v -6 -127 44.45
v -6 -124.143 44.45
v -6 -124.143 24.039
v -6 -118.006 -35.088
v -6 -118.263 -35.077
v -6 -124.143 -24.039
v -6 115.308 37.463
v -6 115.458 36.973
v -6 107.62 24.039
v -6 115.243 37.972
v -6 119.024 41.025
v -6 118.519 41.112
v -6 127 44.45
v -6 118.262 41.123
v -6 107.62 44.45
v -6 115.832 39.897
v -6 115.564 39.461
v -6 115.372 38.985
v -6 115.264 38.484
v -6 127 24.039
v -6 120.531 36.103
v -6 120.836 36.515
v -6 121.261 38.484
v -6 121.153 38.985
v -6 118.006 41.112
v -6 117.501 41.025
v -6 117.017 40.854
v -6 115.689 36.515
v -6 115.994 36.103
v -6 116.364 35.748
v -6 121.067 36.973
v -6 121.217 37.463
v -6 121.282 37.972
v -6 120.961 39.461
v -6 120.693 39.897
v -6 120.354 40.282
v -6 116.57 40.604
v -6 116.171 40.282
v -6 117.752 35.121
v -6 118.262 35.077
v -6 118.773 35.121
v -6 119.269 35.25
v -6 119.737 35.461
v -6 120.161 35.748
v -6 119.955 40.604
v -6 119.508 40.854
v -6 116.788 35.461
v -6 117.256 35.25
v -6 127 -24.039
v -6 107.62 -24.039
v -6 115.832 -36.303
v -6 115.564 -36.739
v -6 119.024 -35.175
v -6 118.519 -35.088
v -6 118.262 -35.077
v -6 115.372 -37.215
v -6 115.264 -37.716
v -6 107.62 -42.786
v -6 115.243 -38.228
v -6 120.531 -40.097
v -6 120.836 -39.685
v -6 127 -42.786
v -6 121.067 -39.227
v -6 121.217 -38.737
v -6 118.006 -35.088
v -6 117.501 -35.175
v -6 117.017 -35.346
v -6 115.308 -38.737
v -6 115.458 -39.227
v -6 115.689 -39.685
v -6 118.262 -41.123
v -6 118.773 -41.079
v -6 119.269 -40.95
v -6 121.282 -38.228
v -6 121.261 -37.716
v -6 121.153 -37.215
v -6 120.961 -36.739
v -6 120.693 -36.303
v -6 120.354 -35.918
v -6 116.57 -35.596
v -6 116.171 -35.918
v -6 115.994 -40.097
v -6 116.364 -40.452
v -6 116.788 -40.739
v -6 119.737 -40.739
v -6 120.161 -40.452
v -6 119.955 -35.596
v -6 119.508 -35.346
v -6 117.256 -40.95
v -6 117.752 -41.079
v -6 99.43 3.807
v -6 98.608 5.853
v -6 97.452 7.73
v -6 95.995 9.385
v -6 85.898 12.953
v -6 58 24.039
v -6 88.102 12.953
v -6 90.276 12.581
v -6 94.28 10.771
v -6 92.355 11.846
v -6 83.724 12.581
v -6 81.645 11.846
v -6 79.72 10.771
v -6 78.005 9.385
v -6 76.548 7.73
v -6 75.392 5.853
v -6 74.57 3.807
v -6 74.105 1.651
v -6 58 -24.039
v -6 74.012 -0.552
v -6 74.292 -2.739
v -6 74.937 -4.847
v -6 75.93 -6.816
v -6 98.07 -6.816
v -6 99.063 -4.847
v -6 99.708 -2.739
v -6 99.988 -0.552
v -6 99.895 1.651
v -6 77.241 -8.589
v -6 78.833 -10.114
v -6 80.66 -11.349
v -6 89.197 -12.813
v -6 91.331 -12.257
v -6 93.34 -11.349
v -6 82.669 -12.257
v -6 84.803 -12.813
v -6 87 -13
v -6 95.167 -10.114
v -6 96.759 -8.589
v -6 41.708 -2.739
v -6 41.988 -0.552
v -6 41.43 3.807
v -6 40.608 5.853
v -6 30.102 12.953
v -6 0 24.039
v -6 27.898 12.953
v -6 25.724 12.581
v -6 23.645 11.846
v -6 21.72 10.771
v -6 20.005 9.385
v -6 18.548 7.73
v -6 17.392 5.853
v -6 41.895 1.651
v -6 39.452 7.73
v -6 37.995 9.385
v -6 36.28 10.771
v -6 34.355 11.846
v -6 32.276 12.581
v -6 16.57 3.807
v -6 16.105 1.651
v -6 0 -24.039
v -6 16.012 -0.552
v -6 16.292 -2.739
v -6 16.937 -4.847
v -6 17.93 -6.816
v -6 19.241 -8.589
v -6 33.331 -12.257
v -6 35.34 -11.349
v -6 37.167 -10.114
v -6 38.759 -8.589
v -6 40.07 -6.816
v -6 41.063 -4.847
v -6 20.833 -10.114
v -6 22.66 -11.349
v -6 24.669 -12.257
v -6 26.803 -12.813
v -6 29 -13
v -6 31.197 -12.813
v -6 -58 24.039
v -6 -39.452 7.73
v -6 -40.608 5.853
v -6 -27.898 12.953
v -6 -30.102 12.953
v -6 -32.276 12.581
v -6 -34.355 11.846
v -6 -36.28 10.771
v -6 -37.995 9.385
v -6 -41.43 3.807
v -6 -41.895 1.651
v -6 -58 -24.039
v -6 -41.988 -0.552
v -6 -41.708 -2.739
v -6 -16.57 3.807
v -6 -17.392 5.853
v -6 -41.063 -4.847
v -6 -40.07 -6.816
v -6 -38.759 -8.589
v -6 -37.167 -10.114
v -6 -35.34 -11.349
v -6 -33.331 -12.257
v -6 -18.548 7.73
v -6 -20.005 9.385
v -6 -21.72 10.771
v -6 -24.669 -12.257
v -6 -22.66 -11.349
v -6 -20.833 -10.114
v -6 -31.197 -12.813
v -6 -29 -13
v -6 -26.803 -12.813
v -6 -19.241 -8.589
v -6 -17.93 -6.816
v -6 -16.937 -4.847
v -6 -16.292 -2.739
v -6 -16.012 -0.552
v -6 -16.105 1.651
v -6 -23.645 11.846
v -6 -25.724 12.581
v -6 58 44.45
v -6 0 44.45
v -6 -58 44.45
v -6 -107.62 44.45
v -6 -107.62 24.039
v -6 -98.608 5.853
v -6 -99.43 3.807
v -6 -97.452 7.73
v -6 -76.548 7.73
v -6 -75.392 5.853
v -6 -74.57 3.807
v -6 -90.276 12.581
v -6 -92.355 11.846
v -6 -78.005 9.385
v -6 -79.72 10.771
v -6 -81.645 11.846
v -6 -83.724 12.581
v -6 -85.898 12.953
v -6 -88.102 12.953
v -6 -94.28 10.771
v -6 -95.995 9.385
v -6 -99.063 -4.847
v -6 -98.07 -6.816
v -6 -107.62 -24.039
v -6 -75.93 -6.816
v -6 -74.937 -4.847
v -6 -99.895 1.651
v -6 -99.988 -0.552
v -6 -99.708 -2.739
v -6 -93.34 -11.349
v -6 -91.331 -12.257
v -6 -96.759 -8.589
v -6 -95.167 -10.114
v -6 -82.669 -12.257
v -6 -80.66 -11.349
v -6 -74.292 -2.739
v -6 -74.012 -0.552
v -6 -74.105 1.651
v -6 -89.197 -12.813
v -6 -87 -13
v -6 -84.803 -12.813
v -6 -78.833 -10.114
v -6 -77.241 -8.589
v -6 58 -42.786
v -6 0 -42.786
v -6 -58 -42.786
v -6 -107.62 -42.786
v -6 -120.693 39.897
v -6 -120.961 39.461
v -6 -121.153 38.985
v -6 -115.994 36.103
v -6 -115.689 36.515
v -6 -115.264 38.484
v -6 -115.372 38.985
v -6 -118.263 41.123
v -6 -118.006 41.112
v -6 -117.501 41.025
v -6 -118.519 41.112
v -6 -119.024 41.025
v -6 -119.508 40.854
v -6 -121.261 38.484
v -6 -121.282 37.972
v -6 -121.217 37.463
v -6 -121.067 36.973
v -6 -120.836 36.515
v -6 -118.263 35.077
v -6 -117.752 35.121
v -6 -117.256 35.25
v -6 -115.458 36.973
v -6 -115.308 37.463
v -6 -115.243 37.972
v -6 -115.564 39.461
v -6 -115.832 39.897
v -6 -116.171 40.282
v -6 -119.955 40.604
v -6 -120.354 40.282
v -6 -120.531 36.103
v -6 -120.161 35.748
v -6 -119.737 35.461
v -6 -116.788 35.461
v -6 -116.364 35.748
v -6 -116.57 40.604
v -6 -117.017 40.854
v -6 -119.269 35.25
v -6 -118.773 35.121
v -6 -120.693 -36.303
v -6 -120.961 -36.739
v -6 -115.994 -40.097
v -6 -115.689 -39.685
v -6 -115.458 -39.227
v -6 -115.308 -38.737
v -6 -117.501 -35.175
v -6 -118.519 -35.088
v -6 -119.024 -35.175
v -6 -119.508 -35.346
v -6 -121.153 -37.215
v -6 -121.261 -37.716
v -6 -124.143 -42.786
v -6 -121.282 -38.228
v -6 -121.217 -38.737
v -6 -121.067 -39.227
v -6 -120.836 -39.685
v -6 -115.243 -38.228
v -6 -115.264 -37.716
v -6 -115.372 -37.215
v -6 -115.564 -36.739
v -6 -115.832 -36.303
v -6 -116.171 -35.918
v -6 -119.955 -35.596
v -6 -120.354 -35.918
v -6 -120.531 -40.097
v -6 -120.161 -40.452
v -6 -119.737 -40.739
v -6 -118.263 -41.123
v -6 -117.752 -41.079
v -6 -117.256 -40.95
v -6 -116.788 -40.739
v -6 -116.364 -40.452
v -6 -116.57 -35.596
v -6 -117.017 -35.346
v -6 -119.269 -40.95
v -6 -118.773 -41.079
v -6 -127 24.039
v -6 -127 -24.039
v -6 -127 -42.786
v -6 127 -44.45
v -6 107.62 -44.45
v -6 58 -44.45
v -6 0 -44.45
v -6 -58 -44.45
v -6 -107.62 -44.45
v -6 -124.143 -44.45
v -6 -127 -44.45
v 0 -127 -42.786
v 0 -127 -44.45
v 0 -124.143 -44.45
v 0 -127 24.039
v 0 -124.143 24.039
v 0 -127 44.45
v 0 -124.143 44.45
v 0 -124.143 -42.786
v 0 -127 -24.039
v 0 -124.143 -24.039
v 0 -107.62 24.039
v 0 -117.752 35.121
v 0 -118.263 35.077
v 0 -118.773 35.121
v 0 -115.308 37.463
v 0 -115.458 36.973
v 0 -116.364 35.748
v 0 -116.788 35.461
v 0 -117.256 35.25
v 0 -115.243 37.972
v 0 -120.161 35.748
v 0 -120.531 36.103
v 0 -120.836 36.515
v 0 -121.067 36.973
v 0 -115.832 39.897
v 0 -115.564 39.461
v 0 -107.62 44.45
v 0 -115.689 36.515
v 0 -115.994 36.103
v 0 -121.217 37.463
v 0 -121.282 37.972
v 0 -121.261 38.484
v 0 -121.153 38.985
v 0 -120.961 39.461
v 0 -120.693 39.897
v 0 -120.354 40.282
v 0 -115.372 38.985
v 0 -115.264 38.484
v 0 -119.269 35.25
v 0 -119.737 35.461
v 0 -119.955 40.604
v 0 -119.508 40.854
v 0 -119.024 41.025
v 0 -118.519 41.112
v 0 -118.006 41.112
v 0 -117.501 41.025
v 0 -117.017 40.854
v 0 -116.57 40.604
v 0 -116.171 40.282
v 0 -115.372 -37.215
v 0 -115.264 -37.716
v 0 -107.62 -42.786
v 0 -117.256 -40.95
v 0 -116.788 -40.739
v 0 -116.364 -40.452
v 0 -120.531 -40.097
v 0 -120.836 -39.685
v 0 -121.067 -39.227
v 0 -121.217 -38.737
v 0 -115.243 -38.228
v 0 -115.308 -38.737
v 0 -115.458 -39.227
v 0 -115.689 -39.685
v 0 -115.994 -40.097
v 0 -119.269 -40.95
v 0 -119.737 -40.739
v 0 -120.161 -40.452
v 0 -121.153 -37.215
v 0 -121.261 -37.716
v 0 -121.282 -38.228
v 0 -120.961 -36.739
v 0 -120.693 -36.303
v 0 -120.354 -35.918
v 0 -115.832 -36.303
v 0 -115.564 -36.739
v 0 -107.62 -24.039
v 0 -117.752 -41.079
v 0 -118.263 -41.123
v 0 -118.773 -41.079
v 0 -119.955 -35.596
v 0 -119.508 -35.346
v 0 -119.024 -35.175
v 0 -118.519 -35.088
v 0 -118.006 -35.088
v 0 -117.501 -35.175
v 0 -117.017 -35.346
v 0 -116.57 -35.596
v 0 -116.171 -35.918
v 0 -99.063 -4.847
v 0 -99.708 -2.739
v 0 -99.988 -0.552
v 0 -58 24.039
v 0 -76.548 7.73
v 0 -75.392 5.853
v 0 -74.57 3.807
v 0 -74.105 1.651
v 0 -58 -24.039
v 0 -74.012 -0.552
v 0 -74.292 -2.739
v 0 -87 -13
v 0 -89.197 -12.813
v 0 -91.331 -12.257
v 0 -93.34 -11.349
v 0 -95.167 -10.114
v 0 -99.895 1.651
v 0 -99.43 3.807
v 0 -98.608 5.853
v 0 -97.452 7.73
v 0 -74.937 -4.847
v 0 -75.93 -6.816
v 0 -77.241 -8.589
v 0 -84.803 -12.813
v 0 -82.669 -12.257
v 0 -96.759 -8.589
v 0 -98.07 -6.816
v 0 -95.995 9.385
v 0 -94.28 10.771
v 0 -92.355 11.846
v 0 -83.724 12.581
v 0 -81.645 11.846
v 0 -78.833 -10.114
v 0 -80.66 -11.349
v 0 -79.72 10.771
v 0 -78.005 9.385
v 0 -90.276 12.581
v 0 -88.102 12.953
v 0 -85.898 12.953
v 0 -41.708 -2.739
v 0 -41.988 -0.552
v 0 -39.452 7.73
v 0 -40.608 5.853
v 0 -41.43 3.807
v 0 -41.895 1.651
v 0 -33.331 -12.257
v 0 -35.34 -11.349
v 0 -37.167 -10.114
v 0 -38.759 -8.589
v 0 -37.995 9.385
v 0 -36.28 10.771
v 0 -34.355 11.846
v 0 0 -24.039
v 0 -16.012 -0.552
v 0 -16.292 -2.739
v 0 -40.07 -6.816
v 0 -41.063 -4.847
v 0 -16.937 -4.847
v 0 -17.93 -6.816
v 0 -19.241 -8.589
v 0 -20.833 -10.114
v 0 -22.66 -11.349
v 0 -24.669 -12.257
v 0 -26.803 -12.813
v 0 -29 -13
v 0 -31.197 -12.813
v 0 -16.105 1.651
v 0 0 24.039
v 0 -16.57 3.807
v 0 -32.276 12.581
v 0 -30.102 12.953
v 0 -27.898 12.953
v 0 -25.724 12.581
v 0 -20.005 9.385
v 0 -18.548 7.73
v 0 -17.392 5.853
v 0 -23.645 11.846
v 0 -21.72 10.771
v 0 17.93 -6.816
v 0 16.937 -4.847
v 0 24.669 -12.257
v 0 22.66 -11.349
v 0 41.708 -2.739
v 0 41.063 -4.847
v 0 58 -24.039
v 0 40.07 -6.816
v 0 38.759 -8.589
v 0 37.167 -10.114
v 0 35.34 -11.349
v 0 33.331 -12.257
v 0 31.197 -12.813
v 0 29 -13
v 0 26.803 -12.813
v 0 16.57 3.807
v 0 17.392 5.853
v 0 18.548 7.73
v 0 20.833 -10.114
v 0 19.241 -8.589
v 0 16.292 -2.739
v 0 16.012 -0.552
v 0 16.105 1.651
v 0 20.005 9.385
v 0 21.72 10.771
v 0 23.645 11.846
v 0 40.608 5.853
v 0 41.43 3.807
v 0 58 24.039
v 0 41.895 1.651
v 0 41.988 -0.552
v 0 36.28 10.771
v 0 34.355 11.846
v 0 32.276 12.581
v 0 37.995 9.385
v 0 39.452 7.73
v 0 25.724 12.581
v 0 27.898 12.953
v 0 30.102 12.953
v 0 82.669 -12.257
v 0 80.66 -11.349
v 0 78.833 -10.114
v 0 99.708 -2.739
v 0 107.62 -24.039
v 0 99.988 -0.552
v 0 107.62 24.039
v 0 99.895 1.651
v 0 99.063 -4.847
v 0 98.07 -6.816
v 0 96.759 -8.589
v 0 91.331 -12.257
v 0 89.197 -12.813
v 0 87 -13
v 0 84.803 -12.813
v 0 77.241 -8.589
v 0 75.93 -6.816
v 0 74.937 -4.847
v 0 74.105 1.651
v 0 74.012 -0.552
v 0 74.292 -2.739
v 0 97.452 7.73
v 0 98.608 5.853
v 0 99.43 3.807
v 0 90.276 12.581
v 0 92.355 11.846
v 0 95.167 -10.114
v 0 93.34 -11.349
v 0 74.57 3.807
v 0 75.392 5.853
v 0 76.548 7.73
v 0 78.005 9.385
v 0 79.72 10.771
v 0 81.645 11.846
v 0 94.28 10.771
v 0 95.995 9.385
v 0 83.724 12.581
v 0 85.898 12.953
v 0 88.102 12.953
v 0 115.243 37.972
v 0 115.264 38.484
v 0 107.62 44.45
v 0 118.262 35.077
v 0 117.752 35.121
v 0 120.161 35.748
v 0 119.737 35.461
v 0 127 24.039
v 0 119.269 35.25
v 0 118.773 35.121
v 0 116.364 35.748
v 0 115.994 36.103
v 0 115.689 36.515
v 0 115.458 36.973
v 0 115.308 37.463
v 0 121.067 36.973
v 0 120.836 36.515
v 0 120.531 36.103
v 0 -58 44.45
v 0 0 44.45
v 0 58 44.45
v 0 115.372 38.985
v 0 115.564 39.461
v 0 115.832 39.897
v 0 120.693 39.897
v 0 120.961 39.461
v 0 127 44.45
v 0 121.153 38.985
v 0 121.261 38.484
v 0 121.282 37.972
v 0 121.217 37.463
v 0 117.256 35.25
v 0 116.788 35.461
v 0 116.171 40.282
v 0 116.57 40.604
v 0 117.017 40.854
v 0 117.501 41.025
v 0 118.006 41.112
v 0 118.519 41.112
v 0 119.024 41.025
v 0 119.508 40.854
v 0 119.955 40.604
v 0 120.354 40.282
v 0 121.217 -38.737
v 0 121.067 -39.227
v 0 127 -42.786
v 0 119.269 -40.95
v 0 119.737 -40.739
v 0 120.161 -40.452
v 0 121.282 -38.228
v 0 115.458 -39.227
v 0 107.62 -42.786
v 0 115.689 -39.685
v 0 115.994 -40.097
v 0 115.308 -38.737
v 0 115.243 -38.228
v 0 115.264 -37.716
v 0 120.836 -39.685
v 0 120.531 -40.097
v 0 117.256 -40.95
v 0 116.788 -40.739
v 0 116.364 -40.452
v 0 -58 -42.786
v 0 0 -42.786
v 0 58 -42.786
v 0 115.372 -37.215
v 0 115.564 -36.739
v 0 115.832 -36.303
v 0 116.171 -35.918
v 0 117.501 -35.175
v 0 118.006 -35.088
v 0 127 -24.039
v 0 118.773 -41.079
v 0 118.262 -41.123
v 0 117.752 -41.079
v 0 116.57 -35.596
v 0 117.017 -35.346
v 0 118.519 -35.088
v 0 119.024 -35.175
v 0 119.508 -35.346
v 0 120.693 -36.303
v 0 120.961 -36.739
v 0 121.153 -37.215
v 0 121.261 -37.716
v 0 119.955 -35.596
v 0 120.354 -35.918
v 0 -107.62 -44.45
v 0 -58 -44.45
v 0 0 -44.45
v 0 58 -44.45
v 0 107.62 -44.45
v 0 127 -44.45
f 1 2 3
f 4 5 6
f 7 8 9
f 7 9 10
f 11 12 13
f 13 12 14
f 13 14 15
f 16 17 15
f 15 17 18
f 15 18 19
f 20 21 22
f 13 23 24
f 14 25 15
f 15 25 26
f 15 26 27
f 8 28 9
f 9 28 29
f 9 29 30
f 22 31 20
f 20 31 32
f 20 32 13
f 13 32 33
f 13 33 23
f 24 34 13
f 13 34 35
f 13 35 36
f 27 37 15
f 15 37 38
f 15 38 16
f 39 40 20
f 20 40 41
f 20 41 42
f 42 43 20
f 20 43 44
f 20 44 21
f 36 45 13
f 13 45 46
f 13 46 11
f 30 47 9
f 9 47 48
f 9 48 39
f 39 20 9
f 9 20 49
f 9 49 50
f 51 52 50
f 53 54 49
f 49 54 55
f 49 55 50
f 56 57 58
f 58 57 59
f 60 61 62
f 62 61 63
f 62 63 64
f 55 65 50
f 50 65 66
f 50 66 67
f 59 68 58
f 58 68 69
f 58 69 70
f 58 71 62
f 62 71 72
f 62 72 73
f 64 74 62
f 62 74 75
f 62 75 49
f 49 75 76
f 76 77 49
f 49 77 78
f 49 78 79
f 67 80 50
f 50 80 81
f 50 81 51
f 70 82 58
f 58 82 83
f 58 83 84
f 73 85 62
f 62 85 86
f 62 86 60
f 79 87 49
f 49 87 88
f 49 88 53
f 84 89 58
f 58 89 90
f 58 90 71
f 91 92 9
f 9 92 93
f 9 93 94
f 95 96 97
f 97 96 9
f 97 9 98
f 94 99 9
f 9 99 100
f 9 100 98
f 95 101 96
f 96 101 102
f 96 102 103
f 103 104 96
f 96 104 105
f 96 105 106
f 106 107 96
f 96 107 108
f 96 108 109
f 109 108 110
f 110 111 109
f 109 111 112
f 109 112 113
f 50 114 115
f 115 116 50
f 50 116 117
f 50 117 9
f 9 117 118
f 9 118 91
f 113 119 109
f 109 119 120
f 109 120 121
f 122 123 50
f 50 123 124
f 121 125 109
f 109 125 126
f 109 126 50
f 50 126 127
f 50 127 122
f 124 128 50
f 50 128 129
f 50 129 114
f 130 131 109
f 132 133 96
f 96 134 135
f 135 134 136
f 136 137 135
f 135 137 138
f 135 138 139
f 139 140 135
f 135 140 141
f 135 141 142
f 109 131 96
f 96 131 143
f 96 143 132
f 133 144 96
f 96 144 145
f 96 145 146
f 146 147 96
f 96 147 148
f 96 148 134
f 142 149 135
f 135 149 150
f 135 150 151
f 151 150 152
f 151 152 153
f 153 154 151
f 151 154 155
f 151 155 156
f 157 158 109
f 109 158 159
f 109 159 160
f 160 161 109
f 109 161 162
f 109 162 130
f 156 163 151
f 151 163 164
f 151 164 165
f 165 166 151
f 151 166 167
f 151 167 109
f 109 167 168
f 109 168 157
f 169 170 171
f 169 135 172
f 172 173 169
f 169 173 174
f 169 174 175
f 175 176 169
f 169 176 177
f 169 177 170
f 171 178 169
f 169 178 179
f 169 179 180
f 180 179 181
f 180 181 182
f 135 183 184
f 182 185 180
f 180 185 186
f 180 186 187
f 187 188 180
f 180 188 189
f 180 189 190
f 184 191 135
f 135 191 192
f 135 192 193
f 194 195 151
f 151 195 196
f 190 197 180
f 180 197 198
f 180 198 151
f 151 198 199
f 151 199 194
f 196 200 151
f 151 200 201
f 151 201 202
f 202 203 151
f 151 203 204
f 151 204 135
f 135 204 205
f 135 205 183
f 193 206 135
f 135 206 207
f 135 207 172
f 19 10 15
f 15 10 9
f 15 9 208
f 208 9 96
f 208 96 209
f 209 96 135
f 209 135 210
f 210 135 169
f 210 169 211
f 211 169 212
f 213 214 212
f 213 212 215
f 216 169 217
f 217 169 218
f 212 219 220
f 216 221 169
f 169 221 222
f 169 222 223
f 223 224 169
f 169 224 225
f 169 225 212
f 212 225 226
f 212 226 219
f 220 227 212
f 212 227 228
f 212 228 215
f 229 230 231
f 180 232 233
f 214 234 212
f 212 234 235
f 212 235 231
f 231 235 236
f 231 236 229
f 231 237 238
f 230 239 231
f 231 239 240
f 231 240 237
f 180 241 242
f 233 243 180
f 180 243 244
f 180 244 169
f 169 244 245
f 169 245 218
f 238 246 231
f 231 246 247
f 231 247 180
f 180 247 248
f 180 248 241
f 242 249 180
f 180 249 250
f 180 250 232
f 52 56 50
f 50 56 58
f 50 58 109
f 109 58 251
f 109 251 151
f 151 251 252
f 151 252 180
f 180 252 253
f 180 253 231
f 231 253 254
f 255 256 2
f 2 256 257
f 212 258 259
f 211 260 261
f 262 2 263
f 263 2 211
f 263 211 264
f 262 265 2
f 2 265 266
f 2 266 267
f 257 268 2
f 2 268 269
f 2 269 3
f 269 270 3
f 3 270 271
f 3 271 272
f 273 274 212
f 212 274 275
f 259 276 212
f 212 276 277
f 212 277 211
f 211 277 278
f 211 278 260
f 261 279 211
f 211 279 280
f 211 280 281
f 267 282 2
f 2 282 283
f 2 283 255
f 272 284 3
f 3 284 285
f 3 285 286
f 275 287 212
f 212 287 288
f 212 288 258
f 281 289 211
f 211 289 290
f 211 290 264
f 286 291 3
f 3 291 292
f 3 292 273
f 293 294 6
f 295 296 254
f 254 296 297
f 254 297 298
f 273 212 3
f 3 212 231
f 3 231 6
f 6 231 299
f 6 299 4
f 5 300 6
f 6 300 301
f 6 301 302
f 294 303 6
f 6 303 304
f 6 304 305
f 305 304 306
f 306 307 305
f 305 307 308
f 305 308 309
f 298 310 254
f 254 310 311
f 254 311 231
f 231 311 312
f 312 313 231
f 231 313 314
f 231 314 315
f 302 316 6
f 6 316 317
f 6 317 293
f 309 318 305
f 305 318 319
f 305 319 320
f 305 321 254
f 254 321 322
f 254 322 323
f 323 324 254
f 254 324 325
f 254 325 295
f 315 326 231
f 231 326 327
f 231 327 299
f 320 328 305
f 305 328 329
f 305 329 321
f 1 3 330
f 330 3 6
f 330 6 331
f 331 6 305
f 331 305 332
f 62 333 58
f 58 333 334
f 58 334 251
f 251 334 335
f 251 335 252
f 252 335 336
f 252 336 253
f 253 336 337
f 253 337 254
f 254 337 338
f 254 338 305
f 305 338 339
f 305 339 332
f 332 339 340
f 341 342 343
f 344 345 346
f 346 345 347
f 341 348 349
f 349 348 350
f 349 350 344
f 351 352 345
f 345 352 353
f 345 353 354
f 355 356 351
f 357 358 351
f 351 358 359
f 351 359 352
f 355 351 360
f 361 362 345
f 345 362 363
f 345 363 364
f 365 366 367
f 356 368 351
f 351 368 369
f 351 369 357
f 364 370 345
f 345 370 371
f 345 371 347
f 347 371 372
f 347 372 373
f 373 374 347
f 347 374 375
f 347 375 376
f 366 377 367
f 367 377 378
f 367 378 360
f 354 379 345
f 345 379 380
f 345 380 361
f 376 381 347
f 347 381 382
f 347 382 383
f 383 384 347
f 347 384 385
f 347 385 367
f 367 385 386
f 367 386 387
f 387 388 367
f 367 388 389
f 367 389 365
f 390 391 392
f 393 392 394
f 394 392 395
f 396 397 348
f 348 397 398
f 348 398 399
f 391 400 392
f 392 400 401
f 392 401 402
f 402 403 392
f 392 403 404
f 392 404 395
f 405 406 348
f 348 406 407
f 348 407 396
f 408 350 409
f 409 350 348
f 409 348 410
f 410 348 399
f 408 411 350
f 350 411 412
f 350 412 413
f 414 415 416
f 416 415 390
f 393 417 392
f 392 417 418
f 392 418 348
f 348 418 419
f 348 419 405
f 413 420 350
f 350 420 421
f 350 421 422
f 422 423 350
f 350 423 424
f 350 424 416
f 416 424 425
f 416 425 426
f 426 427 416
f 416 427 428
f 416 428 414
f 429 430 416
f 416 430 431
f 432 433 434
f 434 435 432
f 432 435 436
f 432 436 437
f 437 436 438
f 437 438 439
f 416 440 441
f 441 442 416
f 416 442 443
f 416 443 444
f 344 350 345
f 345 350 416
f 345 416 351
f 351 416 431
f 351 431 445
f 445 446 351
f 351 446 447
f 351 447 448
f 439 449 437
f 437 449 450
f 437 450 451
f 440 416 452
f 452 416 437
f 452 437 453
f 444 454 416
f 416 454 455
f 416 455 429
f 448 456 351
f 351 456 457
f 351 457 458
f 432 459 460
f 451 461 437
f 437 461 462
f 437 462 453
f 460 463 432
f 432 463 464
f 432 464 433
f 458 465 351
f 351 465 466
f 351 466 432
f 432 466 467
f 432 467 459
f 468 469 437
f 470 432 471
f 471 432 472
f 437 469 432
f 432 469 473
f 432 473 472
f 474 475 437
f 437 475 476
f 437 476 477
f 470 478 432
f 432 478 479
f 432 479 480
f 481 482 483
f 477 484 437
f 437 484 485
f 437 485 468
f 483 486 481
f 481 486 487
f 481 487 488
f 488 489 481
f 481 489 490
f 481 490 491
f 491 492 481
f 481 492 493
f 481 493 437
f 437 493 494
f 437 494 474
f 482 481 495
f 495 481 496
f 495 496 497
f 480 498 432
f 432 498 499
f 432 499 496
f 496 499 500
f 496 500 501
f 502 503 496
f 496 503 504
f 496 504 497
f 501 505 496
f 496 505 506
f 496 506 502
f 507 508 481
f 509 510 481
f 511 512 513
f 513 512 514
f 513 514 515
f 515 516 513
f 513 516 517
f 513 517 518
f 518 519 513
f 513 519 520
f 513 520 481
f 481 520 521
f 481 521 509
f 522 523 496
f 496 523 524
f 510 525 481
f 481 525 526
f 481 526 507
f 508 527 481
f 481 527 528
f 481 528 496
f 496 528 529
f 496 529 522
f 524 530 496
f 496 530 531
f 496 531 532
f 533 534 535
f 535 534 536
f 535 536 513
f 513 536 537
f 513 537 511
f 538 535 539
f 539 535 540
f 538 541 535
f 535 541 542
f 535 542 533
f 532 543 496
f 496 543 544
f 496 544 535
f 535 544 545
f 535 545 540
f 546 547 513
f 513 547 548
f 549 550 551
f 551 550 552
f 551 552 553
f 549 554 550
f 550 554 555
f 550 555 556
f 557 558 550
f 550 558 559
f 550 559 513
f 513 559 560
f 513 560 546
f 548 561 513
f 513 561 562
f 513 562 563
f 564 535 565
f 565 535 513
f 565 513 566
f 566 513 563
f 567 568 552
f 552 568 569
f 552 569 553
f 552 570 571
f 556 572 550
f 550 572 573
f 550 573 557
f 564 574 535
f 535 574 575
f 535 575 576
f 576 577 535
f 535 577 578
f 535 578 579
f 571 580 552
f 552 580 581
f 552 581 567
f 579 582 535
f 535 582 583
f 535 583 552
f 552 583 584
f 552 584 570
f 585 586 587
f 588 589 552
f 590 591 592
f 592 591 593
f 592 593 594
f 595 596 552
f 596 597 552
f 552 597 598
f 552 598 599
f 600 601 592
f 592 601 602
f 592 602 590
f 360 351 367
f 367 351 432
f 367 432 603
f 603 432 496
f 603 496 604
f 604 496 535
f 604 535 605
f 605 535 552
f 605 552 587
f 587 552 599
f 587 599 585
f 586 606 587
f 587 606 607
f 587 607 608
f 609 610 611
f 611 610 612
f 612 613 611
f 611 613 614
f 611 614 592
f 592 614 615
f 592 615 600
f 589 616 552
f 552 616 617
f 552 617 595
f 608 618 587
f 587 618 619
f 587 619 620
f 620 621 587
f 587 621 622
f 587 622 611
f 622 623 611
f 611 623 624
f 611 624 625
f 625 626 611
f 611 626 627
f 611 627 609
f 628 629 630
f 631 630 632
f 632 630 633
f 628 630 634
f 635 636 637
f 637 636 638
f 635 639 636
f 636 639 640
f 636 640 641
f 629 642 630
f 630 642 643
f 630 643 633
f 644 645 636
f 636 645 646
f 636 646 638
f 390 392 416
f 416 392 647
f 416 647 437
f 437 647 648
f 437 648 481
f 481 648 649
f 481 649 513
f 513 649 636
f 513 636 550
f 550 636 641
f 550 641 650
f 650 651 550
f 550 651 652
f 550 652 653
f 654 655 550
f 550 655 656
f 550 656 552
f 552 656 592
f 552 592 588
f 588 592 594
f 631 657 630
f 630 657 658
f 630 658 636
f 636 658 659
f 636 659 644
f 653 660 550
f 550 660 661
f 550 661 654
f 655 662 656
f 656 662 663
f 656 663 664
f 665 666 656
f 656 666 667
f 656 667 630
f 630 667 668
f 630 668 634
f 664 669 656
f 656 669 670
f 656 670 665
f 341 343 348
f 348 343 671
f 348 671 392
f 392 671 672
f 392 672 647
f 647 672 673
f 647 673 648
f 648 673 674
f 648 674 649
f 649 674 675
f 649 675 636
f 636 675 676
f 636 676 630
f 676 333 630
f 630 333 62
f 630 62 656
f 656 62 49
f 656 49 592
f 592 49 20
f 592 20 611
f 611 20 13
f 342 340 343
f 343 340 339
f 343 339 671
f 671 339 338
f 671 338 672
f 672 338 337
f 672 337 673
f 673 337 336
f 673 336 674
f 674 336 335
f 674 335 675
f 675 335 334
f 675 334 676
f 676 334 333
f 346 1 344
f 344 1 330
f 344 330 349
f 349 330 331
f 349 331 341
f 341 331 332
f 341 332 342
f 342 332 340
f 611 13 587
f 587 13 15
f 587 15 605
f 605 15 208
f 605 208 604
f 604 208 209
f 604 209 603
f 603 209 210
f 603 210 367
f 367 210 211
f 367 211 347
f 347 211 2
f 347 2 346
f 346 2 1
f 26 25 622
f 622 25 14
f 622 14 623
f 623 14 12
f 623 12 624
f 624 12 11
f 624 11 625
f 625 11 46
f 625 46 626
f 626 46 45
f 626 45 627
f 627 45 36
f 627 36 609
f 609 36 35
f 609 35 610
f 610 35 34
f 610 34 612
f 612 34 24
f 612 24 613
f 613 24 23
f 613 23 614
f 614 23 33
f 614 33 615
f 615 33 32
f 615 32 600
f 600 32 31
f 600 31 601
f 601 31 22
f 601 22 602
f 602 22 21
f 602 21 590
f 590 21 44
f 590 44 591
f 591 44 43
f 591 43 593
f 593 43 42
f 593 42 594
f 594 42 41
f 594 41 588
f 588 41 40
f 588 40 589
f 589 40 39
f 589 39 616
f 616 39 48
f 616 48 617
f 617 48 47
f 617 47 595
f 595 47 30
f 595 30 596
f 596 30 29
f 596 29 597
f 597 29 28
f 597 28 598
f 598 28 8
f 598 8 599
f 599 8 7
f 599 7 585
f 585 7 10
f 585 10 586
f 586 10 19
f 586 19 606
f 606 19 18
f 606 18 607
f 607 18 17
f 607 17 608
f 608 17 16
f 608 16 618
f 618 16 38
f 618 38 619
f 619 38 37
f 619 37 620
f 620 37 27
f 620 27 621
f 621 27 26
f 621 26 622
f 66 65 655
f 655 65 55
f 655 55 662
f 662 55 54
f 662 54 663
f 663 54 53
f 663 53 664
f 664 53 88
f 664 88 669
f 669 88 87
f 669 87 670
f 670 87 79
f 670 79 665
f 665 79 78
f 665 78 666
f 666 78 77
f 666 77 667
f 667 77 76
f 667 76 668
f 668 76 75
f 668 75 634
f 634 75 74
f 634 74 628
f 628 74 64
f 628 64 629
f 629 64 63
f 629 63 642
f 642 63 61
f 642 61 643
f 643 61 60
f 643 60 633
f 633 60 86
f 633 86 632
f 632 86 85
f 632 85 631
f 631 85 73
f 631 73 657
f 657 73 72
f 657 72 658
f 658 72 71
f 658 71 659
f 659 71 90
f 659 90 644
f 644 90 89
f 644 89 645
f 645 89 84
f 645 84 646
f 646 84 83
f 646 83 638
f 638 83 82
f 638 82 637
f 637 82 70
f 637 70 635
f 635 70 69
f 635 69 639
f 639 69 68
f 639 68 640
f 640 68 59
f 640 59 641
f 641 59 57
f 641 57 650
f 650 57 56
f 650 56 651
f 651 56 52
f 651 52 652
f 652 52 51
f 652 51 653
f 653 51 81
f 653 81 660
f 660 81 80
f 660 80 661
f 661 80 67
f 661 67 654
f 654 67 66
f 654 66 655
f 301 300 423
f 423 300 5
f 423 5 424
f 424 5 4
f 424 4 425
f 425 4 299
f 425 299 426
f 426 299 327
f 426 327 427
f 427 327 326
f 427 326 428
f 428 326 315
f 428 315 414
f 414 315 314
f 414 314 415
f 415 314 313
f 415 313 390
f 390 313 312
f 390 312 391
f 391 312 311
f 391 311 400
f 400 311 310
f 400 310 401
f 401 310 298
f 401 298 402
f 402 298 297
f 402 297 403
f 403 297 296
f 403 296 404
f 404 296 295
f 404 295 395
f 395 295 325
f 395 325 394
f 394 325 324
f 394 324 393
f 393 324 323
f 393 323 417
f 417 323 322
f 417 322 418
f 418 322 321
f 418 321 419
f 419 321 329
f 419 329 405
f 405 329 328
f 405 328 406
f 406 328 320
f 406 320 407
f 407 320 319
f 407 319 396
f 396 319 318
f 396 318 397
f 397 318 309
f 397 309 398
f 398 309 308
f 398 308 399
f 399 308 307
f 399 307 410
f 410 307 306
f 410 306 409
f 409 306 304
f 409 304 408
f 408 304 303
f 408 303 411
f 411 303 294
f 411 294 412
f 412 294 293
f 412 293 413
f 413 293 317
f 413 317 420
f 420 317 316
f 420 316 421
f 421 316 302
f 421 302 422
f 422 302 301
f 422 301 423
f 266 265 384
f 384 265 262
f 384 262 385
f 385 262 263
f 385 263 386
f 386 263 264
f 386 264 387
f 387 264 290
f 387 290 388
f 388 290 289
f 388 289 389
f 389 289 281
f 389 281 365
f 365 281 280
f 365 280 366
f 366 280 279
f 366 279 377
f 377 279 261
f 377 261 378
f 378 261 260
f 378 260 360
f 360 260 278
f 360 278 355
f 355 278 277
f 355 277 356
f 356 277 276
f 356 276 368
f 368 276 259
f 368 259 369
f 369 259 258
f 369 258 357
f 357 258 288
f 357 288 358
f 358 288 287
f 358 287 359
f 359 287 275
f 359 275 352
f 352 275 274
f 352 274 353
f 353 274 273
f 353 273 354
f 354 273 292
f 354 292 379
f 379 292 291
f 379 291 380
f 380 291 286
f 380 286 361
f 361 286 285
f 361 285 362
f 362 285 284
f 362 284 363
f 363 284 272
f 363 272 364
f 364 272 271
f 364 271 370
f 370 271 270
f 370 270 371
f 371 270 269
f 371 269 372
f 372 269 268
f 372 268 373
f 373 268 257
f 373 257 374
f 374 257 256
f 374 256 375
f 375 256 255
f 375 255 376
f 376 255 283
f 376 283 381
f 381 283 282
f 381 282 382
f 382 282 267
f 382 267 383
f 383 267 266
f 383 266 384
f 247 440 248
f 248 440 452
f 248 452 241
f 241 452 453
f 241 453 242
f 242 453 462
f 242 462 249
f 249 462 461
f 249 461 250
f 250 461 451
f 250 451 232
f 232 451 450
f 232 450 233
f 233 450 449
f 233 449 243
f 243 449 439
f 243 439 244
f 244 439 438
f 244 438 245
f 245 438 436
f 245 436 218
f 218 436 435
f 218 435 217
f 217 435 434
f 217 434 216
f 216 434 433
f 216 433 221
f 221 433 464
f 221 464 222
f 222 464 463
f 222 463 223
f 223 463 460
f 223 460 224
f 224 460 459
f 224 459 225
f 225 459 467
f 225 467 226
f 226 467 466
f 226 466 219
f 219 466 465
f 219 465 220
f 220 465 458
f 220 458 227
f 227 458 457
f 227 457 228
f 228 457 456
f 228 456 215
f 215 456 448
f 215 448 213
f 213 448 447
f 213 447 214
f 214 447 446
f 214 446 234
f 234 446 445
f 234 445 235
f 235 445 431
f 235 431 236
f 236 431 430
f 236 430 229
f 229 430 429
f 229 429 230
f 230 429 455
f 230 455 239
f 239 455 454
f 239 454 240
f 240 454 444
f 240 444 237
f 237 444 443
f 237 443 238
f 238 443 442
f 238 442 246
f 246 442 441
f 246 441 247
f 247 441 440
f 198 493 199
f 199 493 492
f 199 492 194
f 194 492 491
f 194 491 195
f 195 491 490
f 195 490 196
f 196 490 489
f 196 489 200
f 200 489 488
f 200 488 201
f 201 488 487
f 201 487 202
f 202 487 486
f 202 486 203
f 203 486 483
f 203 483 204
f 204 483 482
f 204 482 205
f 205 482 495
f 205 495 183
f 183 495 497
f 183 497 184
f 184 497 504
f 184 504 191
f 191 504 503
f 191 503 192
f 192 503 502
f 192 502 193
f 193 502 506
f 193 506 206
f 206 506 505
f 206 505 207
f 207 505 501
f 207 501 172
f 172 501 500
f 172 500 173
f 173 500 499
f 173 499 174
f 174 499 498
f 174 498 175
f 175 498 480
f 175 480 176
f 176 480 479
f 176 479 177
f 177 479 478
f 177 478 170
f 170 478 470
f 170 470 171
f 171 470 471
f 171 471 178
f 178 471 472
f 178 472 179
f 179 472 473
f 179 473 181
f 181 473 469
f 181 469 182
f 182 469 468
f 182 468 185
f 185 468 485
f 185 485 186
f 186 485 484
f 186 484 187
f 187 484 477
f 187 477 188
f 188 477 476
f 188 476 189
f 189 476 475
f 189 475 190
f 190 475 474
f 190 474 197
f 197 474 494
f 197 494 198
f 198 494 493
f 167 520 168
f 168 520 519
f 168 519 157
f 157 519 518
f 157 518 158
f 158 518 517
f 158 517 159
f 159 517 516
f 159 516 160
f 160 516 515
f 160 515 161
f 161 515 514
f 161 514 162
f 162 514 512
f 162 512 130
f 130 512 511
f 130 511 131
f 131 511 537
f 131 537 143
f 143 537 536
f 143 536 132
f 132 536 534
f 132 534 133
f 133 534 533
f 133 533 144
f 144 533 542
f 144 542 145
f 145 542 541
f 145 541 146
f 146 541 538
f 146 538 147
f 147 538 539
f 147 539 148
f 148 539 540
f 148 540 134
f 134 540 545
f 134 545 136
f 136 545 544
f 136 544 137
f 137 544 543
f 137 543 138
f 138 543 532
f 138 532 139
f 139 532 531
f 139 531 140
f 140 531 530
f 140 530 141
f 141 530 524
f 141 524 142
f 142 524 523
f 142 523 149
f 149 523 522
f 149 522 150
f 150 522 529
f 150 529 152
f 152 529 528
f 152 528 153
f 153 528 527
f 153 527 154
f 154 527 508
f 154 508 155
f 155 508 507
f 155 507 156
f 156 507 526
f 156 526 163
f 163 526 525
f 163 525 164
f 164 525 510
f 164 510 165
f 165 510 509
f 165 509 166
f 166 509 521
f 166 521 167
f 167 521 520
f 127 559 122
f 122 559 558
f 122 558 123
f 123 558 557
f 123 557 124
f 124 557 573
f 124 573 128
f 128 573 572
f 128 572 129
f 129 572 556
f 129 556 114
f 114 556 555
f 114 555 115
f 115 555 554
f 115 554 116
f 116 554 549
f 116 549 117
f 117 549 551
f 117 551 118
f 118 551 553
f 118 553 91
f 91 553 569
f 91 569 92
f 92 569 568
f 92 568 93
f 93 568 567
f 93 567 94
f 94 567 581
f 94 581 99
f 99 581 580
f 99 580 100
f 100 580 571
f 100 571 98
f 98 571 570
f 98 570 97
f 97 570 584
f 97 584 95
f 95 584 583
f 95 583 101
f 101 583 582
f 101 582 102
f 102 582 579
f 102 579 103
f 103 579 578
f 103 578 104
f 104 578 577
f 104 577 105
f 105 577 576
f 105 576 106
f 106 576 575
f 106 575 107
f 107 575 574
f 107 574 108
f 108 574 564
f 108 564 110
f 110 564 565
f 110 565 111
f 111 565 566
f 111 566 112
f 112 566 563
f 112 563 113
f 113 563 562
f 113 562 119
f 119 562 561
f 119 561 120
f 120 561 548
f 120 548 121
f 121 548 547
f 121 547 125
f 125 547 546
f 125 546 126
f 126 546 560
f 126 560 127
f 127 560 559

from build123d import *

# Parameters (mm, degrees)
SKETCH1_W              = 254
SKETCH1_H              = 88.9
BOSS_EXTRUDE1_DEPTH    = 6
F_10_CLEARANCE_HOLE1_D = 6.0452
M22_CLEARANCE_HOLE1_D  = 26


with BuildPart() as part:
    # Sketch1 → Boss-Extrude1 (new body)
    with BuildSketch(Plane.YZ):
        Rectangle(SKETCH1_W, SKETCH1_H)
    extrude(amount=-BOSS_EXTRUDE1_DEPTH)

    # #10 Clearance Hole1 (through all)
    with Locations(Plane.YZ):
        with Locations((118.2625, 38.1), (-118.2625, 38.1), (-118.2625, -38.1), (118.2625, -38.1)):
            Hole(F_10_CLEARANCE_HOLE1_D / 2)

    # M22 Clearance Hole1 (through all)
    with Locations(Plane.YZ):
        with Locations((87, 0), (29, 0), (-29, 0), (-87, 0)):
            Hole(M22_CLEARANCE_HOLE1_D / 2)


solid = part.part
